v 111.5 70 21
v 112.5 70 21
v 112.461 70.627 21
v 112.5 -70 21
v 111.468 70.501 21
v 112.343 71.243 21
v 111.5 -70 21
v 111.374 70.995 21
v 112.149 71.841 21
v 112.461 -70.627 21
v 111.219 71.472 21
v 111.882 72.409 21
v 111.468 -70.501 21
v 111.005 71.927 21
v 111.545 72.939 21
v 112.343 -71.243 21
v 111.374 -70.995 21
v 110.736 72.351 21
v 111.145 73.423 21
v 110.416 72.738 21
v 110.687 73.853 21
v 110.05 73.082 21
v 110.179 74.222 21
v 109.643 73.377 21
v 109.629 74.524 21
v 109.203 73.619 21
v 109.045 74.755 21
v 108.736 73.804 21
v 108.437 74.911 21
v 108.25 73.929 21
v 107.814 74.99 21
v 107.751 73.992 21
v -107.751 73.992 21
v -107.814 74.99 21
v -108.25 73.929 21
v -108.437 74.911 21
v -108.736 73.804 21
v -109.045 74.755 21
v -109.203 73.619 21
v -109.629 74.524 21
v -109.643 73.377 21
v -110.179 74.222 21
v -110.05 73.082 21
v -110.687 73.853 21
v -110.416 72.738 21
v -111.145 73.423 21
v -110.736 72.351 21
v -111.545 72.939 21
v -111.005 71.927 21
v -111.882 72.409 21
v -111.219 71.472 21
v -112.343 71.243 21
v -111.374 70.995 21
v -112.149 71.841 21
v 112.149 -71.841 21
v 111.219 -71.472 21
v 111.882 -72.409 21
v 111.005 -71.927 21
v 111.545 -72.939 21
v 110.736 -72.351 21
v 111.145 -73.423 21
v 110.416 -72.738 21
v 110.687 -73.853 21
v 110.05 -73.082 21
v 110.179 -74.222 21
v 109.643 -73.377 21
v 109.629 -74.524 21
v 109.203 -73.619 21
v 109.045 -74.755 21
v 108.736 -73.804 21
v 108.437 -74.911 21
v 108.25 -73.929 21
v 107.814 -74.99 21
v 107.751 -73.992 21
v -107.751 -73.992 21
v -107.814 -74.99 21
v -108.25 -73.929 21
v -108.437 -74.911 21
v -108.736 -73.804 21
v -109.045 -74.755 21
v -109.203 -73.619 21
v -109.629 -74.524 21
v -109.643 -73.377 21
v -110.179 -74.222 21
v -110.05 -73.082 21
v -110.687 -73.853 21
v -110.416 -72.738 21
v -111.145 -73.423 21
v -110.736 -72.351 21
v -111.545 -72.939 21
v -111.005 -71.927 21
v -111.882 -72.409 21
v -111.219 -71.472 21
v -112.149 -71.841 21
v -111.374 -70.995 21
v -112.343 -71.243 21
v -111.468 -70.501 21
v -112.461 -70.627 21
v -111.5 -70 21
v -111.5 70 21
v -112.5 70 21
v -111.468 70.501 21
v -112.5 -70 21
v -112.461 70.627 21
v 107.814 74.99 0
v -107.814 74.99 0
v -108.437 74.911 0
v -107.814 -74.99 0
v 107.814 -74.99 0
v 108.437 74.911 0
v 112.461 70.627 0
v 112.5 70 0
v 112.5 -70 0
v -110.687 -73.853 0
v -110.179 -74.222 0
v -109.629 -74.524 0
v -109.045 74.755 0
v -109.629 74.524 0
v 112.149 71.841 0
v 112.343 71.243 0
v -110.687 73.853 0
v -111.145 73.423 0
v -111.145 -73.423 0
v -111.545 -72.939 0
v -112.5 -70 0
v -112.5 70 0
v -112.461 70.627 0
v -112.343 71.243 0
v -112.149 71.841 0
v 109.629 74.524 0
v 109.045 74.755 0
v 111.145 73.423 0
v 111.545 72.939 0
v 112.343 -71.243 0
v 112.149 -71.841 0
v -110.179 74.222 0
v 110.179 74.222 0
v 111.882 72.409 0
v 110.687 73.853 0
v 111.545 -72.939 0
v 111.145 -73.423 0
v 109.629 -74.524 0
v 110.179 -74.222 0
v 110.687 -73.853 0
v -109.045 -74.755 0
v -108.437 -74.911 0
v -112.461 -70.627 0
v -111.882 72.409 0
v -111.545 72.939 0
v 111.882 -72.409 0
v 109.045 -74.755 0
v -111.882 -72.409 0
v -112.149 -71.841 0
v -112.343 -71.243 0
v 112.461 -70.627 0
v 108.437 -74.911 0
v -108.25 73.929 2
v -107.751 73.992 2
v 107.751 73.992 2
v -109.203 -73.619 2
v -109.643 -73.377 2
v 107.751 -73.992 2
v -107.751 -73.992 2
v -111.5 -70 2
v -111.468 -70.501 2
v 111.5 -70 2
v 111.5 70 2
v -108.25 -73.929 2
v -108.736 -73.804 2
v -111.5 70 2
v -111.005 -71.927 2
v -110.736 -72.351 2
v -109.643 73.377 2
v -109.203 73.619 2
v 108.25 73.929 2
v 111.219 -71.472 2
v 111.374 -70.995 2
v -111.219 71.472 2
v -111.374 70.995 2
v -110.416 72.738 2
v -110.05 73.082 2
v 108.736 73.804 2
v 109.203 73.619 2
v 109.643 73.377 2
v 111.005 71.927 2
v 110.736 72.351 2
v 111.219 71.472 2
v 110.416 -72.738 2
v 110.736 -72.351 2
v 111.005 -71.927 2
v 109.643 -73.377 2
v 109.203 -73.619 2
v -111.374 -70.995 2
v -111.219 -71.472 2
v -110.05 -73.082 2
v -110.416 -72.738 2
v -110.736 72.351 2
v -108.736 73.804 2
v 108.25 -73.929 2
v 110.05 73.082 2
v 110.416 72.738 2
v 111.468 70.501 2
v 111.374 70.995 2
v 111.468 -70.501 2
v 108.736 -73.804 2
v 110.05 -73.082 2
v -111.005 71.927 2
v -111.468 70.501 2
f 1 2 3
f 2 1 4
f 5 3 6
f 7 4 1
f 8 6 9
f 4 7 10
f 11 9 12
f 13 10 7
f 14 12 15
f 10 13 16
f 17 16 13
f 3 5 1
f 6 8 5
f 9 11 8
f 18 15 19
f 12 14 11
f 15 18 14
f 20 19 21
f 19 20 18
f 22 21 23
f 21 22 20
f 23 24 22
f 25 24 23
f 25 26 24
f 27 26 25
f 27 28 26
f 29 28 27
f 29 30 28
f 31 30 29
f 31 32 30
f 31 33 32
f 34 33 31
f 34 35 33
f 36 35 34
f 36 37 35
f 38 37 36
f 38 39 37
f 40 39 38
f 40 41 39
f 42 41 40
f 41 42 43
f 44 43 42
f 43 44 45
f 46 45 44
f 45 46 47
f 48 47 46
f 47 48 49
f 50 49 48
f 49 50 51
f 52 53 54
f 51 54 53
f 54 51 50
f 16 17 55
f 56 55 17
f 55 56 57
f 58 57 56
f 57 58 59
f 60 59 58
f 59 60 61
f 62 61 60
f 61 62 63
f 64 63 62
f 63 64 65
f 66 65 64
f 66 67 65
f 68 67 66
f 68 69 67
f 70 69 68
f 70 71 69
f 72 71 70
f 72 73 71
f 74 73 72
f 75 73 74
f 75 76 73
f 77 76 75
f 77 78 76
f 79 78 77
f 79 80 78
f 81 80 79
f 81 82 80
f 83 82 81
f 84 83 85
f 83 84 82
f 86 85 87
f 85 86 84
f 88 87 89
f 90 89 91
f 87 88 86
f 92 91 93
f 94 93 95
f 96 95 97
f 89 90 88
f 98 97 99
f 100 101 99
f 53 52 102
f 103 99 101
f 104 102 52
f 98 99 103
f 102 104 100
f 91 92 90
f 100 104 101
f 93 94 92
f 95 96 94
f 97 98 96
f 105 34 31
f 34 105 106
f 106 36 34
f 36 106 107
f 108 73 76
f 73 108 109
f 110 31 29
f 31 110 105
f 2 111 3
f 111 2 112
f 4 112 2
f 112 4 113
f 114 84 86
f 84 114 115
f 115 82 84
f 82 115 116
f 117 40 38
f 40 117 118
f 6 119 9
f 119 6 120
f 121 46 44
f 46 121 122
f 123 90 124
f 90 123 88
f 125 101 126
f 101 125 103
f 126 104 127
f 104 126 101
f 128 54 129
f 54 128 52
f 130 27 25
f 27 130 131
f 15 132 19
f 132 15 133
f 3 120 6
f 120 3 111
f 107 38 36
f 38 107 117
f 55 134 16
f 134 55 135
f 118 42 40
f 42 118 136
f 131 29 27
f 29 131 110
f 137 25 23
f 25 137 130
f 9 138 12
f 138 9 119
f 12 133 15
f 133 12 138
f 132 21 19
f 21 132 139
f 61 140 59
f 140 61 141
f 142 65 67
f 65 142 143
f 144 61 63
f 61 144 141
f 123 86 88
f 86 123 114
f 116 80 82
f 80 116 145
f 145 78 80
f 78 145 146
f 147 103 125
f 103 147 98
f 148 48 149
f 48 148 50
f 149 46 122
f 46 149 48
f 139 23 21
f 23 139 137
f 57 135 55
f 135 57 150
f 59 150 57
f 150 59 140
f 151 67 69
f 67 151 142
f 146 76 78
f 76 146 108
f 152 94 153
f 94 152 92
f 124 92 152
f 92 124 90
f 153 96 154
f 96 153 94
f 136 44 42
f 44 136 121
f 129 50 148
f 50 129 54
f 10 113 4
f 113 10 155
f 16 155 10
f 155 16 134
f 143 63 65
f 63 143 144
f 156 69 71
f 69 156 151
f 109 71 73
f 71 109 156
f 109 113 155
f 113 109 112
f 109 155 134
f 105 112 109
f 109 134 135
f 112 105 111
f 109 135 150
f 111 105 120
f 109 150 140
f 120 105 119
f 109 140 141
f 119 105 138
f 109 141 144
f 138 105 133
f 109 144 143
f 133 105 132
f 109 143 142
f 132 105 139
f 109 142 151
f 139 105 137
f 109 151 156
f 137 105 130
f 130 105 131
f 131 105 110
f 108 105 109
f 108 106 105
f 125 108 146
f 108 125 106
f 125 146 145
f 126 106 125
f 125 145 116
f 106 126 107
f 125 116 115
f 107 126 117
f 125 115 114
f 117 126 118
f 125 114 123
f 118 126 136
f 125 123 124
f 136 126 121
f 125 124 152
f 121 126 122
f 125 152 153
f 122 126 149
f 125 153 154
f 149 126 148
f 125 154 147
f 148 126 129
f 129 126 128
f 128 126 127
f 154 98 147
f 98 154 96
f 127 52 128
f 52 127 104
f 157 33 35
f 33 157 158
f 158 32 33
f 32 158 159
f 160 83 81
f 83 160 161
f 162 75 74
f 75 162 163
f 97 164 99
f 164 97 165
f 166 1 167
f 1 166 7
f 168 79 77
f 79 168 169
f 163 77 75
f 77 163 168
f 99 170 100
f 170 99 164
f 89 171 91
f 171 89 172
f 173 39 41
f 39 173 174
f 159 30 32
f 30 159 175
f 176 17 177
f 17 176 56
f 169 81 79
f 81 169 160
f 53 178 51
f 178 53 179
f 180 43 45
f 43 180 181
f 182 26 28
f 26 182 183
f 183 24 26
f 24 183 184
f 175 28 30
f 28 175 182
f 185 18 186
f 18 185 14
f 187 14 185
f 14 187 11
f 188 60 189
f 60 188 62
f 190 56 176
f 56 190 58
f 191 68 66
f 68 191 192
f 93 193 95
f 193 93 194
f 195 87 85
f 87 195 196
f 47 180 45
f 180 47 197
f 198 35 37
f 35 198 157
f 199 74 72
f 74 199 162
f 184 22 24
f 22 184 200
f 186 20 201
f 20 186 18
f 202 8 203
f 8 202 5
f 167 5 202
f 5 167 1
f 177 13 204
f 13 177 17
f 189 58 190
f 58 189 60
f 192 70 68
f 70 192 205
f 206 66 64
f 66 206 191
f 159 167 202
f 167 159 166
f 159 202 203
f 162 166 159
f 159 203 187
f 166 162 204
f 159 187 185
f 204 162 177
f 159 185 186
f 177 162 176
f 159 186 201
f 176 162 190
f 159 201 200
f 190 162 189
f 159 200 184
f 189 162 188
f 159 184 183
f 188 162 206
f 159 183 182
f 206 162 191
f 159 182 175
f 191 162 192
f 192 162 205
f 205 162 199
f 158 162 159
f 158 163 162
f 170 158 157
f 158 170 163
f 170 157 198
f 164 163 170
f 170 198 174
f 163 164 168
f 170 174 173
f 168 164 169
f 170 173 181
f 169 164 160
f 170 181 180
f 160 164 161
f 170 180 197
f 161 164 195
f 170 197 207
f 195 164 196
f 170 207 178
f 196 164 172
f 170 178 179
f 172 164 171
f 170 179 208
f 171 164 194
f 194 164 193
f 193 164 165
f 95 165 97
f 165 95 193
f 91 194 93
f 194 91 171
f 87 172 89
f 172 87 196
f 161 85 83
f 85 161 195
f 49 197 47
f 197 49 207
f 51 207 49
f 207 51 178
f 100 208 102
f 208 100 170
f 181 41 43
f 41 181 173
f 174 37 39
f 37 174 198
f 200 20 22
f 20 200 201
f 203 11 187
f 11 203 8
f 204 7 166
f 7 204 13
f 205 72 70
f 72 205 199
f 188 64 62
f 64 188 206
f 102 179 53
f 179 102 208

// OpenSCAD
$fn = 50;


difference() {
	union() {
		hull() {
			translate(v = [-107.5000000000, 70.0000000000, 0]) {
				cylinder(h = 21, r = 5);
			}
			translate(v = [107.5000000000, 70.0000000000, 0]) {
				cylinder(h = 21, r = 5);
			}
			translate(v = [-107.5000000000, -70.0000000000, 0]) {
				cylinder(h = 21, r = 5);
			}
			translate(v = [107.5000000000, -70.0000000000, 0]) {
				cylinder(h = 21, r = 5);
			}
		}
	}
	union() {
		translate(v = [0, 0, 2]) {
			hull() {
				translate(v = [-107.5000000000, 70.0000000000, 0]) {
					cylinder(h = 19, r = 4);
				}
				translate(v = [107.5000000000, 70.0000000000, 0]) {
					cylinder(h = 19, r = 4);
				}
				translate(v = [-107.5000000000, -70.0000000000, 0]) {
					cylinder(h = 19, r = 4);
				}
				translate(v = [107.5000000000, -70.0000000000, 0]) {
					cylinder(h = 19, r = 4);
				}
			}
		}
	}
}
